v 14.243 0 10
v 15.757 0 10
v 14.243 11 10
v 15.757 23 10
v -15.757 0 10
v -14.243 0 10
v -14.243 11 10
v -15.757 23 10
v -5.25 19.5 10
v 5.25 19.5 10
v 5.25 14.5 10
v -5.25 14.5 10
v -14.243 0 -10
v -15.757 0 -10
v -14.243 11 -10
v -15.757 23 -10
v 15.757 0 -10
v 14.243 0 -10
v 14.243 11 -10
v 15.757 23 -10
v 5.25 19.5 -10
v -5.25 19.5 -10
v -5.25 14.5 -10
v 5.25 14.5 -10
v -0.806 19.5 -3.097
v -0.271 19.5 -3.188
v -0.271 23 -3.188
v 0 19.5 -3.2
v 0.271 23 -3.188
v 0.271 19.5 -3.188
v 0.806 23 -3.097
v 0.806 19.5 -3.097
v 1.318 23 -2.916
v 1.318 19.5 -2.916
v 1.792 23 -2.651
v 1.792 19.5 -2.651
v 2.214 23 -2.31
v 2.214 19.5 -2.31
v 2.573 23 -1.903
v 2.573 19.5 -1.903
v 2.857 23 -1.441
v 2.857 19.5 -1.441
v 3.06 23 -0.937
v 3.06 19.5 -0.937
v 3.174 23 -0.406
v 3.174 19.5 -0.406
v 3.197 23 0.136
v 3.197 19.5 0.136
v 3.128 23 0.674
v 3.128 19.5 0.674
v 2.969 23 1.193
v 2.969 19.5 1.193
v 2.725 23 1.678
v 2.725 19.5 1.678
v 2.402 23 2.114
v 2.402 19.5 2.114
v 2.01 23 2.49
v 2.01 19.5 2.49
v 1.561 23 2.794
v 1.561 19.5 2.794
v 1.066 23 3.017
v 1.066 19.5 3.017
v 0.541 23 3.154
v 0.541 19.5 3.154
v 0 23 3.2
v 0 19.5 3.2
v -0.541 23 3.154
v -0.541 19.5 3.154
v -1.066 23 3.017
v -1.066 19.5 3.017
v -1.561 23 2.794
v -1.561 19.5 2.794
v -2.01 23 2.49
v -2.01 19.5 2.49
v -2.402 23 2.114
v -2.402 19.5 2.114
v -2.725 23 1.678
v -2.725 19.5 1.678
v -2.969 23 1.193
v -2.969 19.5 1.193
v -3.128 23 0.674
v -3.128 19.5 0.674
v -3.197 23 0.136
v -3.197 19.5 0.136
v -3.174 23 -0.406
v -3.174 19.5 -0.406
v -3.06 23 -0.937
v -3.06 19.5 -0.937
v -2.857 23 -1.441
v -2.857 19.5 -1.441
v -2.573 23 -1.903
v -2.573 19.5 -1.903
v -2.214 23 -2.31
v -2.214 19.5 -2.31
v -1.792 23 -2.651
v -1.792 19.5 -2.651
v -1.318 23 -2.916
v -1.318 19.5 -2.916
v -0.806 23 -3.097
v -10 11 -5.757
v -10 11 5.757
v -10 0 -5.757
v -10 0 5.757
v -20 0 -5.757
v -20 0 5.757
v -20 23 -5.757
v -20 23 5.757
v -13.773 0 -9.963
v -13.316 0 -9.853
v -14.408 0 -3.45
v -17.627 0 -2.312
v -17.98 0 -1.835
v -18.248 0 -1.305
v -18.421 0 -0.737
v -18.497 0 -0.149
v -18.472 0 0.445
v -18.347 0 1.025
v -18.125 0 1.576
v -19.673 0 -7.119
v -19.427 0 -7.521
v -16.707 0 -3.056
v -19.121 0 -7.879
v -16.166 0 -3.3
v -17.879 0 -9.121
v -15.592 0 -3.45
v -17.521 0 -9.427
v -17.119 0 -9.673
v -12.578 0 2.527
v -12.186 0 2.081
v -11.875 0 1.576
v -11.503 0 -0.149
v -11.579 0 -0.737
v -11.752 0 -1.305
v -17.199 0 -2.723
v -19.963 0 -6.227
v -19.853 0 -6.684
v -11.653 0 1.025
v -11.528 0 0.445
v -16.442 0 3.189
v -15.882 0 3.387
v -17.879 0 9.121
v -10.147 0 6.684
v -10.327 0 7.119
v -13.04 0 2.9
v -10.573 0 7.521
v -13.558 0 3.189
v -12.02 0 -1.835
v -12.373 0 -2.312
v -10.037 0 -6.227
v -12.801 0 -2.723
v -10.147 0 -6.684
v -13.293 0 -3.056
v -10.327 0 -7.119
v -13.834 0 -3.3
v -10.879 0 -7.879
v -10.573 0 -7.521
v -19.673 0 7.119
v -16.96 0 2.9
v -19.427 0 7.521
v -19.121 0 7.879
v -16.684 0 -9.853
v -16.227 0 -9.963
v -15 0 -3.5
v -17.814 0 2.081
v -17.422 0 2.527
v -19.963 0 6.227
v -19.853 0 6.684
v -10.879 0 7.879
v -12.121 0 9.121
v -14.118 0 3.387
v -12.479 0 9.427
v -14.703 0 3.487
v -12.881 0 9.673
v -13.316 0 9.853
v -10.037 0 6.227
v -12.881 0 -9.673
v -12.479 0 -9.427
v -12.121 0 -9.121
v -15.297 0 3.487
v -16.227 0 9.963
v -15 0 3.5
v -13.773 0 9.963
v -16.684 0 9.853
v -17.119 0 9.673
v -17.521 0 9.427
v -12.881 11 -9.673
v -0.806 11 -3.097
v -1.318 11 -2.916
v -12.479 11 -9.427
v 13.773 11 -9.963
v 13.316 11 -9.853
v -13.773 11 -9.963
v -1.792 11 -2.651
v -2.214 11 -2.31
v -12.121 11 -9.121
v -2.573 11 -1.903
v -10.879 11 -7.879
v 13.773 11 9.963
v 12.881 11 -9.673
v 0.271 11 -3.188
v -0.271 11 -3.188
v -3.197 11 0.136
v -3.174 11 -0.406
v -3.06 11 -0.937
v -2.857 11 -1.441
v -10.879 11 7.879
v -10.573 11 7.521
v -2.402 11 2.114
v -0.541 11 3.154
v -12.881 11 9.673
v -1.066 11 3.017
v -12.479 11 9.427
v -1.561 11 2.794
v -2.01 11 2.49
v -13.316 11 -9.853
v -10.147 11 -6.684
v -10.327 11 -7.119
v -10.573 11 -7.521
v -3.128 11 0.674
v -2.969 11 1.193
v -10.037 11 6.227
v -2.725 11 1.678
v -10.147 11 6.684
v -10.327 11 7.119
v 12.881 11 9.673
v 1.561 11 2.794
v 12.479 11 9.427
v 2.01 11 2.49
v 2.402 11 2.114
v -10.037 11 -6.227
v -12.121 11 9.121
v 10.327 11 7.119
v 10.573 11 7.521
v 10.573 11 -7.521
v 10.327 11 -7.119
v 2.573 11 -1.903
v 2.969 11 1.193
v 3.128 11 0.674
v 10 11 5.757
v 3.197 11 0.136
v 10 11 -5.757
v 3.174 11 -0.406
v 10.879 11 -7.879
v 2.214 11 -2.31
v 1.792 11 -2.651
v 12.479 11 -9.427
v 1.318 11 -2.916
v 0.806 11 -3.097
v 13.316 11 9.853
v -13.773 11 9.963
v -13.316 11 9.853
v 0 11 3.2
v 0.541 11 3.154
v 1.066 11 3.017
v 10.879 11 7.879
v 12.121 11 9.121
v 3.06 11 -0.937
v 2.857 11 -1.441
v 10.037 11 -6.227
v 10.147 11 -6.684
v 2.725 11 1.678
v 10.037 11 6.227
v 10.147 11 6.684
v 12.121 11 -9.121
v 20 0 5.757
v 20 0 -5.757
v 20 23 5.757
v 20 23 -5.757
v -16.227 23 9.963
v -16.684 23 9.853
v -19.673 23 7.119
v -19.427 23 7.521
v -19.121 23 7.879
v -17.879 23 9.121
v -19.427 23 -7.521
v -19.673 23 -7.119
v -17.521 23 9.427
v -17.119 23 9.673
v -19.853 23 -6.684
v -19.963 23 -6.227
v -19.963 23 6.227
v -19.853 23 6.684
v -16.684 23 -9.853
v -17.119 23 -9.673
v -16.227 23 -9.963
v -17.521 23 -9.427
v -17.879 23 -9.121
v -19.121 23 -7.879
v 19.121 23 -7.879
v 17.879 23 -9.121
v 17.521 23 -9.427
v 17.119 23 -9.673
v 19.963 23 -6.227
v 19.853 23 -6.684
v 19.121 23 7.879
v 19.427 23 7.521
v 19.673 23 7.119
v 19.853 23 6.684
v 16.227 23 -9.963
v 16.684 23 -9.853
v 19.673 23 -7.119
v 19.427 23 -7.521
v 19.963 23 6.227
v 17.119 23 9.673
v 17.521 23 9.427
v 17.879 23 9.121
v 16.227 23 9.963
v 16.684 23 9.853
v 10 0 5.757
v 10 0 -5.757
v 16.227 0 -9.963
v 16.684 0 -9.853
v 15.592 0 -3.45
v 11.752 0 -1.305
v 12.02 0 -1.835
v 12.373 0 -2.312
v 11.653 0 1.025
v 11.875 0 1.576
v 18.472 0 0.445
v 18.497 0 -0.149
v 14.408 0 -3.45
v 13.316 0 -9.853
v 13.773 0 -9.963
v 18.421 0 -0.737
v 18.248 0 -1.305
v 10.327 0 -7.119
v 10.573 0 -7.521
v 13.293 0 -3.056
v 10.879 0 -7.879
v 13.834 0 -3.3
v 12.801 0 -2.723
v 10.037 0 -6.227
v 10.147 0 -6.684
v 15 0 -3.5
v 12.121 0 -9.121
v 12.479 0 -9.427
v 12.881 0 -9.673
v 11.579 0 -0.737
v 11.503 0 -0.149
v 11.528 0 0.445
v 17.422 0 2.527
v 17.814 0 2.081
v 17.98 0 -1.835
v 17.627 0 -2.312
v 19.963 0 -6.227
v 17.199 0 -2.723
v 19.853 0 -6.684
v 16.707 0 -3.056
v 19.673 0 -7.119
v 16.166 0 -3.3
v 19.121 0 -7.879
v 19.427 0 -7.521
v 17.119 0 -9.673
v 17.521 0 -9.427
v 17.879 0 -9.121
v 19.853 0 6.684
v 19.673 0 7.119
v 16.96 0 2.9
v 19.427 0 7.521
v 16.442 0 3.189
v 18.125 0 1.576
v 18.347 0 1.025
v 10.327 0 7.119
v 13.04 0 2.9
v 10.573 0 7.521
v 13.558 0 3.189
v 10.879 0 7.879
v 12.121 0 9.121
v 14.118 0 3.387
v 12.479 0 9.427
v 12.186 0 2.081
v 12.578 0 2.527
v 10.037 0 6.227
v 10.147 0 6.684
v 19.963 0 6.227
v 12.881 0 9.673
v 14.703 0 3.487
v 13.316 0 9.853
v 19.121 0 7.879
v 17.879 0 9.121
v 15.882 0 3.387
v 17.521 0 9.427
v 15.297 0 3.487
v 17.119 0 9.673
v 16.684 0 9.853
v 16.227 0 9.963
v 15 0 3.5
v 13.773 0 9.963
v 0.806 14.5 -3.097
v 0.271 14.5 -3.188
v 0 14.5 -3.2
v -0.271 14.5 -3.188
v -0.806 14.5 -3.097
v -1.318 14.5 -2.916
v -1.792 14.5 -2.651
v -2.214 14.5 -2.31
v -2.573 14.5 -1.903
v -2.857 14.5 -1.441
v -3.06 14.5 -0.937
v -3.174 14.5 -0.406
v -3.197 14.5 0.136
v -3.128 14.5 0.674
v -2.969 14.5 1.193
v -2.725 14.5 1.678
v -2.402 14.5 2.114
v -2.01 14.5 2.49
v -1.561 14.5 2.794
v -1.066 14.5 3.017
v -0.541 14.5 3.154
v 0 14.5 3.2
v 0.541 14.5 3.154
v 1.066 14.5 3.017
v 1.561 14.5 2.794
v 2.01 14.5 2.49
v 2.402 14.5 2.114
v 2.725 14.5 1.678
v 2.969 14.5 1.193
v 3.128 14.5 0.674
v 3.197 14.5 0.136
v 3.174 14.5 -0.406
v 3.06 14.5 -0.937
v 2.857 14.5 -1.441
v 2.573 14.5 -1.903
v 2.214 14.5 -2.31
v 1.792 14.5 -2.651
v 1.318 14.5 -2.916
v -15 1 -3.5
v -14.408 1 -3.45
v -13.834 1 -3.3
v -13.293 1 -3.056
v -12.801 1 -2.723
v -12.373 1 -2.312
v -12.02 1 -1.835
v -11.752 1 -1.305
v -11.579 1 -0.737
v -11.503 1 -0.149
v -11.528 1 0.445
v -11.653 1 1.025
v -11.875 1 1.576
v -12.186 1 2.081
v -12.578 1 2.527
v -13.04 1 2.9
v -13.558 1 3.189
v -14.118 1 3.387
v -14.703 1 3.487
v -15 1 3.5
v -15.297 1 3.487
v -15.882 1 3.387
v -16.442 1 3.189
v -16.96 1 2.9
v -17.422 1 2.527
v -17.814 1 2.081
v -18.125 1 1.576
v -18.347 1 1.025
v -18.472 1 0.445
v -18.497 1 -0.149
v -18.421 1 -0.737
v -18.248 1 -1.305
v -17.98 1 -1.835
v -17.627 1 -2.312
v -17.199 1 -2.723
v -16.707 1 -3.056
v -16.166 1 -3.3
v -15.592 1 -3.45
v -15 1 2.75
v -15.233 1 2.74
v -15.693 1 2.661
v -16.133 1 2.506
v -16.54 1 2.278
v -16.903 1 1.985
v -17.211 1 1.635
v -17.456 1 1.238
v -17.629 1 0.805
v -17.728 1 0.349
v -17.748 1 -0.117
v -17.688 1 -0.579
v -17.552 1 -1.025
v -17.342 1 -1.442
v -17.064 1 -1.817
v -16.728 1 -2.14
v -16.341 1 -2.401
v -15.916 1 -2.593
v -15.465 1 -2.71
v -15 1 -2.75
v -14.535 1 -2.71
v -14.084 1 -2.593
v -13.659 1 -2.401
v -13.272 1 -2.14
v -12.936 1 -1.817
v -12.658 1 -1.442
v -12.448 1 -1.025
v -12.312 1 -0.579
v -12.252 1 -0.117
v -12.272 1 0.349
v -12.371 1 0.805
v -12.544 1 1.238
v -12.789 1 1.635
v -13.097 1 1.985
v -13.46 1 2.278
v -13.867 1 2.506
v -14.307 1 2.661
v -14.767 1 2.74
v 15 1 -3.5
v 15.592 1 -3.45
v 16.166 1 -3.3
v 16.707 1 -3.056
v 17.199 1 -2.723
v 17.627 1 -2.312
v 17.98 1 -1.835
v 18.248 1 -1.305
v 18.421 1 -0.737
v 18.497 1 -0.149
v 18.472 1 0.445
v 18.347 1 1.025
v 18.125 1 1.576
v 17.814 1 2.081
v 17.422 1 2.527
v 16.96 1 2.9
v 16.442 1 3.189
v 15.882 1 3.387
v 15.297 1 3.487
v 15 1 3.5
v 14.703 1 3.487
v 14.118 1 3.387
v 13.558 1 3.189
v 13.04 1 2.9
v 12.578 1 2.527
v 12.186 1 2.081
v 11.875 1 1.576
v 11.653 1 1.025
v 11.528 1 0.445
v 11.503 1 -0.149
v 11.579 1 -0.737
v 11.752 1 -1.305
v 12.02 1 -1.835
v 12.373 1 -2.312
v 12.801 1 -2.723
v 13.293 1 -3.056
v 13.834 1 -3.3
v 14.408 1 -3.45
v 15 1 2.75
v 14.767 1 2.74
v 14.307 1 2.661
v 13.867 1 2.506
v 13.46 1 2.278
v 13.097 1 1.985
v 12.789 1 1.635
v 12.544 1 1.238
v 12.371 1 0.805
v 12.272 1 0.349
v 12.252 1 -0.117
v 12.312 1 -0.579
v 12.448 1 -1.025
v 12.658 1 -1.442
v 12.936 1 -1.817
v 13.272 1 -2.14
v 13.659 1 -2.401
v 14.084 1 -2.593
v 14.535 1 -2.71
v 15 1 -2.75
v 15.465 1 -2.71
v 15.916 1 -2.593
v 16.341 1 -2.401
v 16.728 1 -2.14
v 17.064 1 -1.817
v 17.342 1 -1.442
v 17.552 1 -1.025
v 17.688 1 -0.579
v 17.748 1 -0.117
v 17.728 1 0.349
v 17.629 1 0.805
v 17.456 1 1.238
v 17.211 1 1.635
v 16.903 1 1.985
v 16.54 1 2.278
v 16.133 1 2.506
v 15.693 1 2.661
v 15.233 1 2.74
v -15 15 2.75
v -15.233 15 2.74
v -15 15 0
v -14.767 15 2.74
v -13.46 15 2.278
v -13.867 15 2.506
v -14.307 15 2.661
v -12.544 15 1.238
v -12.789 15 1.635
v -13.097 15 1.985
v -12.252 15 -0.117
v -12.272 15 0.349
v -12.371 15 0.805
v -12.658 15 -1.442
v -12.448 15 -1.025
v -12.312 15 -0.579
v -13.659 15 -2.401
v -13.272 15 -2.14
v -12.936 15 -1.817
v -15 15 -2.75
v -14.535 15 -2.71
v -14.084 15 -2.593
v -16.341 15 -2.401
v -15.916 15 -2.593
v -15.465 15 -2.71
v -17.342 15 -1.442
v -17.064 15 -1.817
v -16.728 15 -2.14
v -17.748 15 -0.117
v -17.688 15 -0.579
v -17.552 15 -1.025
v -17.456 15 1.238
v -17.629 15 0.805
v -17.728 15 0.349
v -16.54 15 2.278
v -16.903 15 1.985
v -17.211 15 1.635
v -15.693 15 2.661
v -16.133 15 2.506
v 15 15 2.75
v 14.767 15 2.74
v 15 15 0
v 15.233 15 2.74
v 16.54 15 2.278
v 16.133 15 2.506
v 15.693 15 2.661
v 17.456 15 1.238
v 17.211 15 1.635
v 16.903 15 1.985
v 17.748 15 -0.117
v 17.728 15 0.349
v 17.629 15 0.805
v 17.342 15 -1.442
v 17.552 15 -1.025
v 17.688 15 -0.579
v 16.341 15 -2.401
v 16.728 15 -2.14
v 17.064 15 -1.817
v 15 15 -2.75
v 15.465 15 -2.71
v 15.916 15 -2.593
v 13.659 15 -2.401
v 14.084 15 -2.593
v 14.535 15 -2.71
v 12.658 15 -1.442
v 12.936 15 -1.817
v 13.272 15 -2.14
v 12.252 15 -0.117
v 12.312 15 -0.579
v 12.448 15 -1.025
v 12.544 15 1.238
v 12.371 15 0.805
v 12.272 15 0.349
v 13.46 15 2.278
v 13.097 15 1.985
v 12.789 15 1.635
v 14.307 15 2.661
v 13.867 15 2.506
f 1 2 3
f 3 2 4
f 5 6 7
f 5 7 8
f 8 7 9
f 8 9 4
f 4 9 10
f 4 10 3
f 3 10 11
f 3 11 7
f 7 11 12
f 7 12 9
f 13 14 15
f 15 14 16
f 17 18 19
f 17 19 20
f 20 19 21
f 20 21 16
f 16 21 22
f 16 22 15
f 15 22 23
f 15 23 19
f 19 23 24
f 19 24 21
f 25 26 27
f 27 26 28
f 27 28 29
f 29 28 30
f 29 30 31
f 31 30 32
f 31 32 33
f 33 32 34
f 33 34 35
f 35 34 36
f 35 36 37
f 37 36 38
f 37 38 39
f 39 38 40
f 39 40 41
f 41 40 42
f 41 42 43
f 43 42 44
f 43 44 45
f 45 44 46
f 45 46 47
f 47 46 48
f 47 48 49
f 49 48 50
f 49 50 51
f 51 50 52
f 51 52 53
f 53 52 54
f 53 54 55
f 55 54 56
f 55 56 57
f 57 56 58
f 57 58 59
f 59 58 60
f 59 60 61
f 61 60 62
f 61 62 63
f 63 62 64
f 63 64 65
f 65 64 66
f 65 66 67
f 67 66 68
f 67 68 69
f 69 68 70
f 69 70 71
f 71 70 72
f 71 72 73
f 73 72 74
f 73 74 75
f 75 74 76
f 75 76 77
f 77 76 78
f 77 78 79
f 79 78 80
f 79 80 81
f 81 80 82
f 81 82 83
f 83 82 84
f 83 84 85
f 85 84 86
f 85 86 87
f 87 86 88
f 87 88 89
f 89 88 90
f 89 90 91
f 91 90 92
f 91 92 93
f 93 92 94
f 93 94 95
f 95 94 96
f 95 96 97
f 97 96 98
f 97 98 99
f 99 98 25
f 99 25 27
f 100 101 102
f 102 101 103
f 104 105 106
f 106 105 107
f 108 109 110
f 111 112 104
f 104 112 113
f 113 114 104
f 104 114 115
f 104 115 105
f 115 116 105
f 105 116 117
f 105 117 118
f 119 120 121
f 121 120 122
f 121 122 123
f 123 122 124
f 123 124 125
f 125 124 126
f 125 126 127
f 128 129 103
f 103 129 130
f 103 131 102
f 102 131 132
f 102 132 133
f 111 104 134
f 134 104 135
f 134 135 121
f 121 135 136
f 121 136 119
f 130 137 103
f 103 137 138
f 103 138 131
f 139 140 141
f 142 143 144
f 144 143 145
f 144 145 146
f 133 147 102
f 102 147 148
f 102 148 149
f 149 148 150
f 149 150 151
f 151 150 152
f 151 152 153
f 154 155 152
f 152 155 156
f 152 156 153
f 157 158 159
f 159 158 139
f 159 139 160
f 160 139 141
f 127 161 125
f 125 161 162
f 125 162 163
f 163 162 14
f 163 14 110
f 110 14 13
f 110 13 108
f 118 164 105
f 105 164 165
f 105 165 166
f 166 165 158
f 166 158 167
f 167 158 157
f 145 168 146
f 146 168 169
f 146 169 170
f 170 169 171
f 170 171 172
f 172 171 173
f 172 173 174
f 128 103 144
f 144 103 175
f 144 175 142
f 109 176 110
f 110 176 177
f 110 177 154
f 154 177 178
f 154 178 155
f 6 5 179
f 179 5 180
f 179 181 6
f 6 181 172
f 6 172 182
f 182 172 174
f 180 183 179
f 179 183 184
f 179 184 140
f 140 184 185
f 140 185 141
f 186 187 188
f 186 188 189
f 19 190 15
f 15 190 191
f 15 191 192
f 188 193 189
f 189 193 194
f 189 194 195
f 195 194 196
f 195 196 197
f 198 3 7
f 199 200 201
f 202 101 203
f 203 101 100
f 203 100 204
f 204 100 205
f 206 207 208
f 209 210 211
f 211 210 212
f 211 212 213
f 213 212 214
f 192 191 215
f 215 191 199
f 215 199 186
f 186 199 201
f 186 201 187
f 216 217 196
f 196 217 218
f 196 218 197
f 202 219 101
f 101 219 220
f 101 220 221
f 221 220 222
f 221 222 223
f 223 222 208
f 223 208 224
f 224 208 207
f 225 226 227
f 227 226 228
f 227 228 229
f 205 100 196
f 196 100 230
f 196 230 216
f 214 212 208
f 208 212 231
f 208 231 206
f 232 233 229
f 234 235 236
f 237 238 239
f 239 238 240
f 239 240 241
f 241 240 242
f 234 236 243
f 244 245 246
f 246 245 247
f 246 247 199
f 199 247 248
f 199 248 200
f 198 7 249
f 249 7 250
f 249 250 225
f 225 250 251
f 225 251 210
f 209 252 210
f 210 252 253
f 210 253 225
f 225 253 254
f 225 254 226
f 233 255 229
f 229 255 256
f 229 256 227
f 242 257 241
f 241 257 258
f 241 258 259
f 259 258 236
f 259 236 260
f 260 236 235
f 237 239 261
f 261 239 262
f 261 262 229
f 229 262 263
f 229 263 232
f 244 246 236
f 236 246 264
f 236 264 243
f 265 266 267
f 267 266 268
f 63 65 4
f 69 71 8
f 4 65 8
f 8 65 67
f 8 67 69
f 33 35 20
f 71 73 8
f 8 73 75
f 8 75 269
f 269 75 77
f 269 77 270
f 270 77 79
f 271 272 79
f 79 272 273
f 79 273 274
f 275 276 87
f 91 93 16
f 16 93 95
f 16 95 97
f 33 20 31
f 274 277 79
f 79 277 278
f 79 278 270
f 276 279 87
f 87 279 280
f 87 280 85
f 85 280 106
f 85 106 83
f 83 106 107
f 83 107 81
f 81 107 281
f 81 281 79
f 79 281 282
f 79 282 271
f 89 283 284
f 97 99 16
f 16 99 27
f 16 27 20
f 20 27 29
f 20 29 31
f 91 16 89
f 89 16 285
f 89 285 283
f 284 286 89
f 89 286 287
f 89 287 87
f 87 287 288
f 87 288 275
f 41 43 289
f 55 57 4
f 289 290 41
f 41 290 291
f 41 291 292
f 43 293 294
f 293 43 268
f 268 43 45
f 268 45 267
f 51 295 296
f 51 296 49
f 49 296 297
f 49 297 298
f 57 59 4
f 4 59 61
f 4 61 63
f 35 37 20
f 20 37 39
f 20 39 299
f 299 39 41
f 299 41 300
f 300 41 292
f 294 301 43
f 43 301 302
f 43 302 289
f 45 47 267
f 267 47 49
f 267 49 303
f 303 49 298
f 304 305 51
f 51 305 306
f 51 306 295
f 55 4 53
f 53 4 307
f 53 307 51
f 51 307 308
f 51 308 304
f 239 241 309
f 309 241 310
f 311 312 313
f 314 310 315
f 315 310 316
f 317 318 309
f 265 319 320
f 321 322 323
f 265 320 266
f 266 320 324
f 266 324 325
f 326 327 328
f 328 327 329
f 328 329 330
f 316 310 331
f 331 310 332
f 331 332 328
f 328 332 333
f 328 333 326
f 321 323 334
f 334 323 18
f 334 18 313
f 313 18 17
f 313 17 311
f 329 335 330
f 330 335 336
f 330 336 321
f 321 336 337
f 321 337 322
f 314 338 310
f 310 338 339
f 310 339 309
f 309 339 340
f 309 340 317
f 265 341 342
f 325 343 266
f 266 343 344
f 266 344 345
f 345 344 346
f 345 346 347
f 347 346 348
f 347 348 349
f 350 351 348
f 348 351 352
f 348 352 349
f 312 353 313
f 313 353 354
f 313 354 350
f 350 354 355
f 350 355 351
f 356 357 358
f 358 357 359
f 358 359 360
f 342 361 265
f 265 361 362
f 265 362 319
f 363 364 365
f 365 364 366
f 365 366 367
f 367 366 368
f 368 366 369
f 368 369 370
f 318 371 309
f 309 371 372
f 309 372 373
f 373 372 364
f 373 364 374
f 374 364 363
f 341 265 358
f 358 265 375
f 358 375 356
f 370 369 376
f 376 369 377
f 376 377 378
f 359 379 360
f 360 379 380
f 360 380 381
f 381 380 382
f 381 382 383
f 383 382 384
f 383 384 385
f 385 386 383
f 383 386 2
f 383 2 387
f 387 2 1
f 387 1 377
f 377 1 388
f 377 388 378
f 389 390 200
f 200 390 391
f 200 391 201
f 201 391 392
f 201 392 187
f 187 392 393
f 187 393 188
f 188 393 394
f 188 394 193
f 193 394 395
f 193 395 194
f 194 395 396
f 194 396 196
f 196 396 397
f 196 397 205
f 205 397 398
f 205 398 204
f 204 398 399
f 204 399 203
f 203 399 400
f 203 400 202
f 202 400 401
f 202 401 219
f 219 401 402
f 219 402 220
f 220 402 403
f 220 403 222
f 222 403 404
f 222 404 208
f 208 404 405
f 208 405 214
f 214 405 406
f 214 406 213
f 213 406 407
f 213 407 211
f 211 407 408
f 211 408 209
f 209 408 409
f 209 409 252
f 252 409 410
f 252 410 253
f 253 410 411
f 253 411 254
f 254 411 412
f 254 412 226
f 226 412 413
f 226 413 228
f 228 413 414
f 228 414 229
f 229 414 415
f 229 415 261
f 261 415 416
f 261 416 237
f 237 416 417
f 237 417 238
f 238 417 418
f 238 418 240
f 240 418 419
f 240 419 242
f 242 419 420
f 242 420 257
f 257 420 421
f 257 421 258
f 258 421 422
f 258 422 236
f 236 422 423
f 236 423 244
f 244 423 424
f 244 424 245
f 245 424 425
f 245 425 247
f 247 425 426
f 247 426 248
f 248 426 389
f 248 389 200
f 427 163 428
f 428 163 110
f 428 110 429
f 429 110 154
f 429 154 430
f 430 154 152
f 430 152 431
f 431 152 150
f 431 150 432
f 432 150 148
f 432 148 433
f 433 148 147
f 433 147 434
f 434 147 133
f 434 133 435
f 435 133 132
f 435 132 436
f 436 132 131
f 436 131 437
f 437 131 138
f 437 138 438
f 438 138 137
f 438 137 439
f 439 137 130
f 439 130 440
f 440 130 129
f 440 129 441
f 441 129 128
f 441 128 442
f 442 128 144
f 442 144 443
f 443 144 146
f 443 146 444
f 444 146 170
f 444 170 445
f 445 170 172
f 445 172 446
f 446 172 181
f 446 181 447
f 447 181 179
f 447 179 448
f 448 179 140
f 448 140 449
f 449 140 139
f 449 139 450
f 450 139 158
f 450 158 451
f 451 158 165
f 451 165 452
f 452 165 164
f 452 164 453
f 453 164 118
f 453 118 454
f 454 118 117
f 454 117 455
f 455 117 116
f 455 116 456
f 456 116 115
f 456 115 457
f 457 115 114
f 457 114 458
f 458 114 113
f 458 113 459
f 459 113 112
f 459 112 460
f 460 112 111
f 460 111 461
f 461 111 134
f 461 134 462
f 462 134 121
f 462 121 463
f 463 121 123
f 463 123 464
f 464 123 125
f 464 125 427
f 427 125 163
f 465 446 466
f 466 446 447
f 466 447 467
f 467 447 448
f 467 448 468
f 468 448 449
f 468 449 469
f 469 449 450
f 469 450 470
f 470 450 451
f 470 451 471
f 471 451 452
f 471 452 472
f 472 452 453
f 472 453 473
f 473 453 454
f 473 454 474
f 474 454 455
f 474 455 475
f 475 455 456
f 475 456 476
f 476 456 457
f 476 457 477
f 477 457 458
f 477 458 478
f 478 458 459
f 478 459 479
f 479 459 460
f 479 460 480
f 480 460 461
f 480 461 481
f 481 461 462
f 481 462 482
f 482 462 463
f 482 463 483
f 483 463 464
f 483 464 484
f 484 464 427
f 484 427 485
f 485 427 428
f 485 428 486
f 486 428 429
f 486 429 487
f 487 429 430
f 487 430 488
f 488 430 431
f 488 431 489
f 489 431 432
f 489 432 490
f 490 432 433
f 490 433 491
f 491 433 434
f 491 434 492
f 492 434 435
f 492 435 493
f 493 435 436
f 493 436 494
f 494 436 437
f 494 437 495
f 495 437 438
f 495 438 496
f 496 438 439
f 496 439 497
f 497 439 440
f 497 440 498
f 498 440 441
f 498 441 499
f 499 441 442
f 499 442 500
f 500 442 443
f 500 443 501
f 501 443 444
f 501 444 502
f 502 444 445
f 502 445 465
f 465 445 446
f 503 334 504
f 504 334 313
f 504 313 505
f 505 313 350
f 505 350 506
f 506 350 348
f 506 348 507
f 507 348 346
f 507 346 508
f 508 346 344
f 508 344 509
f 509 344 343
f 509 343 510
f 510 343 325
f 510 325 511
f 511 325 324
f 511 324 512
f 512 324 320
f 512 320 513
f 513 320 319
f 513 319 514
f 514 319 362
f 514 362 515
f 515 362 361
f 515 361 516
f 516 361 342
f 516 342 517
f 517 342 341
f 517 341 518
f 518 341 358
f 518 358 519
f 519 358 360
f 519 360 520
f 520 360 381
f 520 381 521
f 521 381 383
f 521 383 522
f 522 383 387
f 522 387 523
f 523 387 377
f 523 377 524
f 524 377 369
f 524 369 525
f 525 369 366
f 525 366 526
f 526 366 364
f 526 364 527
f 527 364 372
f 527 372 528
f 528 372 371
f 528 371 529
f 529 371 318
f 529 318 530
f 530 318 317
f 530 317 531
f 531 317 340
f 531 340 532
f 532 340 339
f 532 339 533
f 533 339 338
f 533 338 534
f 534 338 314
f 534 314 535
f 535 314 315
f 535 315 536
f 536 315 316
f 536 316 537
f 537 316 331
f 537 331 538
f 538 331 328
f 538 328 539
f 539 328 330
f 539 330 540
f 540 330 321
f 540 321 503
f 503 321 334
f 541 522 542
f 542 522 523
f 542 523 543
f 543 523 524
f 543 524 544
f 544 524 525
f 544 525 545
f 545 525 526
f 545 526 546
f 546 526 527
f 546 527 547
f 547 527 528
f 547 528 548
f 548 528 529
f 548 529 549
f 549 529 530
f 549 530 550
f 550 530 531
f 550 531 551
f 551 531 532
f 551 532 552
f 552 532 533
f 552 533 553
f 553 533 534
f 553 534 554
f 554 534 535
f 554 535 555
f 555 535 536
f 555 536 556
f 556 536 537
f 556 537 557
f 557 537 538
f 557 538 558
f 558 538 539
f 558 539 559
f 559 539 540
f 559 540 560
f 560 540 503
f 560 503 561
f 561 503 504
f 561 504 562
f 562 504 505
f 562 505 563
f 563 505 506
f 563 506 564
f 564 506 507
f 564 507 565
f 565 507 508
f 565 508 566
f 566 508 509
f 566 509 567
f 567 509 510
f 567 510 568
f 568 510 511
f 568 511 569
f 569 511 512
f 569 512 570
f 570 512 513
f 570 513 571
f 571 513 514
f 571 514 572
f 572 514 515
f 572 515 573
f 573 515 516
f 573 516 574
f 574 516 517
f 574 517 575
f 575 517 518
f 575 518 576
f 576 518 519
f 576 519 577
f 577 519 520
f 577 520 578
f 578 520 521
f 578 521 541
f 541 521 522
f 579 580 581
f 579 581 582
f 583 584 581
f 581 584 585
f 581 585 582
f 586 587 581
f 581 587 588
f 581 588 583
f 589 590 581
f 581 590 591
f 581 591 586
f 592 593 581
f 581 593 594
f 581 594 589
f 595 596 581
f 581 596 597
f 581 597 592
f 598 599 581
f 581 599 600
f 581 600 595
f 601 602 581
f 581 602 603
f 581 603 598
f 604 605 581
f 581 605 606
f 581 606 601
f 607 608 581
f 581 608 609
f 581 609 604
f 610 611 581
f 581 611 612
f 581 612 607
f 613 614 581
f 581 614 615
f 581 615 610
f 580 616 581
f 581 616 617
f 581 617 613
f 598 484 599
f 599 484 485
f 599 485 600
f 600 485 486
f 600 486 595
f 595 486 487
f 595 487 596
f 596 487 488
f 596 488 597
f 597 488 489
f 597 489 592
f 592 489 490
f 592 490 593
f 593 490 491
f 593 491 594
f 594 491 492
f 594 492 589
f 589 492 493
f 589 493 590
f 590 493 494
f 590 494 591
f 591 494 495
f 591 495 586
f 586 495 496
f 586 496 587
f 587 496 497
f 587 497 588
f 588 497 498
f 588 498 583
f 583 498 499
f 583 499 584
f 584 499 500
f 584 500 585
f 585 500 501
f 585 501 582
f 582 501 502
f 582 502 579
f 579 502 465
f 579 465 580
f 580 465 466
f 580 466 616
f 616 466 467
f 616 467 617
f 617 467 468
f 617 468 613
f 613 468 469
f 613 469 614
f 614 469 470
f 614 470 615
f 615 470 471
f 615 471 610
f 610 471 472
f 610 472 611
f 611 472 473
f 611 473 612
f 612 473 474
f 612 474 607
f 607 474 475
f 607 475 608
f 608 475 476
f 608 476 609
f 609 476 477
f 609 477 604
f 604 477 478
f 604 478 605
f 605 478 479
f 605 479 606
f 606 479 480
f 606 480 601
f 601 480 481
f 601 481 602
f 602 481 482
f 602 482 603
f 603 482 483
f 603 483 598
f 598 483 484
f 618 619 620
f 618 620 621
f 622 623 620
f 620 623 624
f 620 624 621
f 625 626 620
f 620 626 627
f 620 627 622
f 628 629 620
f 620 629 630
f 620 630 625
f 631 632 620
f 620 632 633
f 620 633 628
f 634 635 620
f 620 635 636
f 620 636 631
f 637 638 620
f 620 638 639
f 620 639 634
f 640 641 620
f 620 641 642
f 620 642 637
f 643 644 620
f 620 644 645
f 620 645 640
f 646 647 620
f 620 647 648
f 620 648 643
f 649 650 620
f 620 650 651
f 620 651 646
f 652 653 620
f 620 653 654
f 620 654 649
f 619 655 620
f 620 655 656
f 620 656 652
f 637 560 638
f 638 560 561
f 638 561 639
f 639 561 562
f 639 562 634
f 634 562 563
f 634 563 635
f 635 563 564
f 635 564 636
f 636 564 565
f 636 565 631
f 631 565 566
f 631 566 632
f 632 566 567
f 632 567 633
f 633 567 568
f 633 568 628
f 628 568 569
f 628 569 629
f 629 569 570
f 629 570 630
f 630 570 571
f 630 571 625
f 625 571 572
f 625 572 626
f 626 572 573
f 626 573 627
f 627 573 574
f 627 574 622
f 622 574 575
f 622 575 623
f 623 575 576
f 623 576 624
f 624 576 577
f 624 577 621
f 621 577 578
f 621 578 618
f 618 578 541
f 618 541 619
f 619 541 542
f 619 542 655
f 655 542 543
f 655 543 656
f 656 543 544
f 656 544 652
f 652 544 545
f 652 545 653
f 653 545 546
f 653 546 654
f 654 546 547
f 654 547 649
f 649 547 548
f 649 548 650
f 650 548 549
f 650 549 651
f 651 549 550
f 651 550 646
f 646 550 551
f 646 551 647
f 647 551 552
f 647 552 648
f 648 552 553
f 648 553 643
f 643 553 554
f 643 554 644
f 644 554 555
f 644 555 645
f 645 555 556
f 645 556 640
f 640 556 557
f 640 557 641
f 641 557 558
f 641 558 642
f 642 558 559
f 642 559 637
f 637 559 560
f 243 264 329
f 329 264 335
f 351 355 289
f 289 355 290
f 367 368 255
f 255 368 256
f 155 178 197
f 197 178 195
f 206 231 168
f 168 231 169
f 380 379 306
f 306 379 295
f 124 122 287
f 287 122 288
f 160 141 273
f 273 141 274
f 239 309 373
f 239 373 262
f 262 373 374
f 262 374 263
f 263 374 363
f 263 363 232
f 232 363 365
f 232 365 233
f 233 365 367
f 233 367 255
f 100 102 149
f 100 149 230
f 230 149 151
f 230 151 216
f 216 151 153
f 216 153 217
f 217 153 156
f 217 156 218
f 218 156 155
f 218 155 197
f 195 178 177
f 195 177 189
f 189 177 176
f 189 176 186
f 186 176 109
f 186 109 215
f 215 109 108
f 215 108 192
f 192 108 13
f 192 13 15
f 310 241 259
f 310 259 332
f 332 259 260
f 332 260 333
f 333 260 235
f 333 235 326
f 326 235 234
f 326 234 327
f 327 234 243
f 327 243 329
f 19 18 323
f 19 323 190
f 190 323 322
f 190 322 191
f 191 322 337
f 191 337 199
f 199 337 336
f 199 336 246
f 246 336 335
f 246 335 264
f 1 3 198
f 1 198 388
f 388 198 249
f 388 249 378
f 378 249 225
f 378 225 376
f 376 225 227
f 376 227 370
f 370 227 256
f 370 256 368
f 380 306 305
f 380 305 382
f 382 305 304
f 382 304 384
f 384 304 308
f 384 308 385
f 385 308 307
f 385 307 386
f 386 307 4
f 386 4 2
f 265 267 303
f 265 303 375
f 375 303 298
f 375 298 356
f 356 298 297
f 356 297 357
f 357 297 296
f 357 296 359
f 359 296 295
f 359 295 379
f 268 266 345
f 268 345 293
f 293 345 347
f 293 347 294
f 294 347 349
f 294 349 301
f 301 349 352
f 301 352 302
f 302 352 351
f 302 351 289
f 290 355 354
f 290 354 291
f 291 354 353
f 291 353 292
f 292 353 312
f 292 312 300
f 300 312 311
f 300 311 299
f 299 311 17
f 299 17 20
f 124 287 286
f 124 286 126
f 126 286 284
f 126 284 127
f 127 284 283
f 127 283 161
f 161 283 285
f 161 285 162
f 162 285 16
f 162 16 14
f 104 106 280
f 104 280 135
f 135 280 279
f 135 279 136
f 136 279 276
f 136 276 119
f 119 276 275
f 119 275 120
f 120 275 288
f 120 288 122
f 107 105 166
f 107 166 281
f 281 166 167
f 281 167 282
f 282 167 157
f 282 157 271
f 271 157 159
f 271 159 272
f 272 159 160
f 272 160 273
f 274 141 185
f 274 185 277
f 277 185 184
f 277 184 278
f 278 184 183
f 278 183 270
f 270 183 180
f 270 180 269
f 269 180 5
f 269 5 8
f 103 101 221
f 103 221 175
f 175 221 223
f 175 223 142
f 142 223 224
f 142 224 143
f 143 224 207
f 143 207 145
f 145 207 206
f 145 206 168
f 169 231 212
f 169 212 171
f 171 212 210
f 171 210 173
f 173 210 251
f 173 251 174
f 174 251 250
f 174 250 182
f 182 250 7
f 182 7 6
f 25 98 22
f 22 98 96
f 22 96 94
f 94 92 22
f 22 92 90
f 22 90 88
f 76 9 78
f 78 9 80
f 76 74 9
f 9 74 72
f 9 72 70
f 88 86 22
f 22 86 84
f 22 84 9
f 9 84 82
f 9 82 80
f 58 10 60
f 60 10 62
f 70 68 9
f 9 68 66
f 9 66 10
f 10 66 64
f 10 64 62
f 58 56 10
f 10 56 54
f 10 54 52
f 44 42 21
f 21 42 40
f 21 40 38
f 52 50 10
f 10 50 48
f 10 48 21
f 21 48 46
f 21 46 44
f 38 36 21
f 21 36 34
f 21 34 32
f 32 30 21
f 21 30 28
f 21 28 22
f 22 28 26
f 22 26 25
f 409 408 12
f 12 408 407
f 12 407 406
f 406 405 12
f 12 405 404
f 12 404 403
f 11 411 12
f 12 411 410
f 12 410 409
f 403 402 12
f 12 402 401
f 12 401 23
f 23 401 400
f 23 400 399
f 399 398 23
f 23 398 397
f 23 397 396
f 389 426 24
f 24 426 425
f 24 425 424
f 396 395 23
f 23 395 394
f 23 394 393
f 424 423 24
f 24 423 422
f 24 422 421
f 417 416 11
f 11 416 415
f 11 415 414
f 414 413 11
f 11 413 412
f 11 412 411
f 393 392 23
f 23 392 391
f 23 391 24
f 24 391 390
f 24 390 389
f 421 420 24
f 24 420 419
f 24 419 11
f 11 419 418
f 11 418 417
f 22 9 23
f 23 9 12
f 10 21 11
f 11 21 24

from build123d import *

# Parameters (mm, degrees)
ESQUISSE1_W             = 10
ESQUISSE1_H             = 20
BOSS_EXTRU_1_DEPTH      = 11
BOSS_EXTRU_1_2_DEPTH    = 11
ESQUISSE3_W             = 40
ESQUISSE3_H             = 20
BOSS_EXTRU_2_DEPTH      = 12
ENL_V_MAT_EXTRU_1_REACH = 34.078
ESQUISSE4_R             = 3.2
ESQUISSE1_3_R           = 2.75
ENL_V_MAT_EXTRU_3_DEPTH = 15
ESQUISSE1_4_R           = 3.5
ESQUISSE1_4_R_2         = 2.75
ENL_V_MAT_EXTRU_4_DEPTH = 1
CHANFREIN1_SIZE         = 3
CONG_1_R                = 3
ESQUISSE6_W             = 10.5
ESQUISSE6_H             = 20
ENL_V_MAT_EXTRU_5_DEPTH = 5


with BuildPart() as part:
    # Esquisse1 → Boss.-Extru.1 (new body)
    with BuildSketch(Plane(origin=(0, 0, 0), x_dir=(1, 0, 0), z_dir=(0, 1, 0))):
        with Locations((-15, 0)):
            Rectangle(ESQUISSE1_W, ESQUISSE1_H)
    extrude(amount=BOSS_EXTRU_1_DEPTH)



with BuildPart() as body_2:
    # Esquisse1 → Boss.-Extru.1 2 (new body)
    with BuildSketch(Plane(origin=(0, 0, 0), x_dir=(1, 0, 0), z_dir=(0, 1, 0))):
        with Locations((15, 0)):
            Rectangle(ESQUISSE1_W, ESQUISSE1_H)
    extrude(amount=BOSS_EXTRU_1_2_DEPTH)


with BuildPart() as part_1:
    add(part.part)

    add(body_2.part)  # Boss.-Extru.2 merges body 2
    # Esquisse3 → Boss.-Extru.2 (add)
    with BuildSketch(Plane(origin=(0, 11, 0), x_dir=(1, 0, 0), z_dir=(0, 1, 0))):
        Rectangle(ESQUISSE3_W, ESQUISSE3_H)
    extrude(amount=BOSS_EXTRU_2_DEPTH)

    # Esquisse4 → Enl_v. mat.-Extru.1 (cut, up to next)
    with BuildSketch(Plane(origin=(0, 23, 0), x_dir=(1, 0, 0), z_dir=(0, 1, 0)), mode=Mode.PRIVATE) as enl_v_mat_extru_1_sk1:
        Circle(ESQUISSE4_R)
    enl_v_mat_extru_1_tool1 = extrude(enl_v_mat_extru_1_sk1.sketch, amount=-ENL_V_MAT_EXTRU_1_REACH, mode=Mode.PRIVATE) & part_1.part
    add(enl_v_mat_extru_1_tool1.solids().sort_by_distance((0, 23, 0))[0], mode=Mode.SUBTRACT)

    # Esquisse1_3 → Enl_v. mat.-Extru.3 (cut)
    with BuildSketch(Plane(origin=(0, 0, 0), x_dir=(1, 0, 0), z_dir=(0, 1, 0))):
        with Locations((-15, 0)):
            Circle(ESQUISSE1_3_R)
        with Locations((15, 0)):
            Circle(ESQUISSE1_3_R)
    extrude(amount=ENL_V_MAT_EXTRU_3_DEPTH, mode=Mode.SUBTRACT)

    # Esquisse1_4 → Enl_v. mat.-Extru.4 (cut)
    # profile 1 of 2: a face of its own
    with BuildSketch(Plane(origin=(0, 0, 0), x_dir=(1, 0, 0), z_dir=(0, 1, 0))):
        with Locations((-15, 0)):
            Circle(ESQUISSE1_4_R)
        with Locations((-15, 0)):
            Circle(ESQUISSE1_4_R_2, mode=Mode.SUBTRACT)
    # profile 2 of 2: a face of its own
    with BuildSketch(Plane(origin=(0, 0, 0), x_dir=(1, 0, 0), z_dir=(0, 1, 0))):
        with Locations((15, 0)):
            Circle(ESQUISSE1_4_R)
        with Locations((15, 0)):
            Circle(ESQUISSE1_4_R_2, mode=Mode.SUBTRACT)
    extrude(amount=ENL_V_MAT_EXTRU_4_DEPTH, mode=Mode.SUBTRACT)

    # Chanfrein1
    chanfrein1_edges = [part_1.edges().sort_by_distance(p)[0] for p in [
        (10, 5.5, -10),
        (20, 11.5, -10),
        (10, 5.5, 10),
        (-10, 5.5, -10),
        (-10, 5.5, 10),
        (20, 11.5, 10),
        (-20, 11.5, -10),
        (-20, 11.5, 10),
    ]]
    chamfer(chanfrein1_edges, length=CHANFREIN1_SIZE)

    # Cong_1
    cong_1_edges = [part_1.edges().sort_by_distance(p)[0] for p in [
        (-10, 5.5, -7),
        (-13, 5.5, -10),
        (10, 5.5, -7),
        (13, 5.5, -10),
        (13, 5.5, 10),
        (17, 11.5, 10),
        (20, 11.5, 7),
        (20, 11.5, -7),
        (17, 11.5, -10),
        (-17, 11.5, -10),
        (-20, 11.5, -7),
        (-20, 11.5, 7),
        (-17, 11.5, 10),
        (-10, 5.5, 7),
        (-13, 5.5, 10),
        (10, 5.5, 7),
    ]]
    fillet(cong_1_edges, radius=CONG_1_R)

    # Esquisse6 → Enl_v. mat.-Extru.5 (cut)
    with BuildSketch(Plane(origin=(0, 14.5, 0), x_dir=(-1, 0, 0), z_dir=(0, -1, 0))):
        Rectangle(ESQUISSE6_W, ESQUISSE6_H)
    extrude(amount=-ENL_V_MAT_EXTRU_5_DEPTH, mode=Mode.SUBTRACT)


solid = part_1.part
